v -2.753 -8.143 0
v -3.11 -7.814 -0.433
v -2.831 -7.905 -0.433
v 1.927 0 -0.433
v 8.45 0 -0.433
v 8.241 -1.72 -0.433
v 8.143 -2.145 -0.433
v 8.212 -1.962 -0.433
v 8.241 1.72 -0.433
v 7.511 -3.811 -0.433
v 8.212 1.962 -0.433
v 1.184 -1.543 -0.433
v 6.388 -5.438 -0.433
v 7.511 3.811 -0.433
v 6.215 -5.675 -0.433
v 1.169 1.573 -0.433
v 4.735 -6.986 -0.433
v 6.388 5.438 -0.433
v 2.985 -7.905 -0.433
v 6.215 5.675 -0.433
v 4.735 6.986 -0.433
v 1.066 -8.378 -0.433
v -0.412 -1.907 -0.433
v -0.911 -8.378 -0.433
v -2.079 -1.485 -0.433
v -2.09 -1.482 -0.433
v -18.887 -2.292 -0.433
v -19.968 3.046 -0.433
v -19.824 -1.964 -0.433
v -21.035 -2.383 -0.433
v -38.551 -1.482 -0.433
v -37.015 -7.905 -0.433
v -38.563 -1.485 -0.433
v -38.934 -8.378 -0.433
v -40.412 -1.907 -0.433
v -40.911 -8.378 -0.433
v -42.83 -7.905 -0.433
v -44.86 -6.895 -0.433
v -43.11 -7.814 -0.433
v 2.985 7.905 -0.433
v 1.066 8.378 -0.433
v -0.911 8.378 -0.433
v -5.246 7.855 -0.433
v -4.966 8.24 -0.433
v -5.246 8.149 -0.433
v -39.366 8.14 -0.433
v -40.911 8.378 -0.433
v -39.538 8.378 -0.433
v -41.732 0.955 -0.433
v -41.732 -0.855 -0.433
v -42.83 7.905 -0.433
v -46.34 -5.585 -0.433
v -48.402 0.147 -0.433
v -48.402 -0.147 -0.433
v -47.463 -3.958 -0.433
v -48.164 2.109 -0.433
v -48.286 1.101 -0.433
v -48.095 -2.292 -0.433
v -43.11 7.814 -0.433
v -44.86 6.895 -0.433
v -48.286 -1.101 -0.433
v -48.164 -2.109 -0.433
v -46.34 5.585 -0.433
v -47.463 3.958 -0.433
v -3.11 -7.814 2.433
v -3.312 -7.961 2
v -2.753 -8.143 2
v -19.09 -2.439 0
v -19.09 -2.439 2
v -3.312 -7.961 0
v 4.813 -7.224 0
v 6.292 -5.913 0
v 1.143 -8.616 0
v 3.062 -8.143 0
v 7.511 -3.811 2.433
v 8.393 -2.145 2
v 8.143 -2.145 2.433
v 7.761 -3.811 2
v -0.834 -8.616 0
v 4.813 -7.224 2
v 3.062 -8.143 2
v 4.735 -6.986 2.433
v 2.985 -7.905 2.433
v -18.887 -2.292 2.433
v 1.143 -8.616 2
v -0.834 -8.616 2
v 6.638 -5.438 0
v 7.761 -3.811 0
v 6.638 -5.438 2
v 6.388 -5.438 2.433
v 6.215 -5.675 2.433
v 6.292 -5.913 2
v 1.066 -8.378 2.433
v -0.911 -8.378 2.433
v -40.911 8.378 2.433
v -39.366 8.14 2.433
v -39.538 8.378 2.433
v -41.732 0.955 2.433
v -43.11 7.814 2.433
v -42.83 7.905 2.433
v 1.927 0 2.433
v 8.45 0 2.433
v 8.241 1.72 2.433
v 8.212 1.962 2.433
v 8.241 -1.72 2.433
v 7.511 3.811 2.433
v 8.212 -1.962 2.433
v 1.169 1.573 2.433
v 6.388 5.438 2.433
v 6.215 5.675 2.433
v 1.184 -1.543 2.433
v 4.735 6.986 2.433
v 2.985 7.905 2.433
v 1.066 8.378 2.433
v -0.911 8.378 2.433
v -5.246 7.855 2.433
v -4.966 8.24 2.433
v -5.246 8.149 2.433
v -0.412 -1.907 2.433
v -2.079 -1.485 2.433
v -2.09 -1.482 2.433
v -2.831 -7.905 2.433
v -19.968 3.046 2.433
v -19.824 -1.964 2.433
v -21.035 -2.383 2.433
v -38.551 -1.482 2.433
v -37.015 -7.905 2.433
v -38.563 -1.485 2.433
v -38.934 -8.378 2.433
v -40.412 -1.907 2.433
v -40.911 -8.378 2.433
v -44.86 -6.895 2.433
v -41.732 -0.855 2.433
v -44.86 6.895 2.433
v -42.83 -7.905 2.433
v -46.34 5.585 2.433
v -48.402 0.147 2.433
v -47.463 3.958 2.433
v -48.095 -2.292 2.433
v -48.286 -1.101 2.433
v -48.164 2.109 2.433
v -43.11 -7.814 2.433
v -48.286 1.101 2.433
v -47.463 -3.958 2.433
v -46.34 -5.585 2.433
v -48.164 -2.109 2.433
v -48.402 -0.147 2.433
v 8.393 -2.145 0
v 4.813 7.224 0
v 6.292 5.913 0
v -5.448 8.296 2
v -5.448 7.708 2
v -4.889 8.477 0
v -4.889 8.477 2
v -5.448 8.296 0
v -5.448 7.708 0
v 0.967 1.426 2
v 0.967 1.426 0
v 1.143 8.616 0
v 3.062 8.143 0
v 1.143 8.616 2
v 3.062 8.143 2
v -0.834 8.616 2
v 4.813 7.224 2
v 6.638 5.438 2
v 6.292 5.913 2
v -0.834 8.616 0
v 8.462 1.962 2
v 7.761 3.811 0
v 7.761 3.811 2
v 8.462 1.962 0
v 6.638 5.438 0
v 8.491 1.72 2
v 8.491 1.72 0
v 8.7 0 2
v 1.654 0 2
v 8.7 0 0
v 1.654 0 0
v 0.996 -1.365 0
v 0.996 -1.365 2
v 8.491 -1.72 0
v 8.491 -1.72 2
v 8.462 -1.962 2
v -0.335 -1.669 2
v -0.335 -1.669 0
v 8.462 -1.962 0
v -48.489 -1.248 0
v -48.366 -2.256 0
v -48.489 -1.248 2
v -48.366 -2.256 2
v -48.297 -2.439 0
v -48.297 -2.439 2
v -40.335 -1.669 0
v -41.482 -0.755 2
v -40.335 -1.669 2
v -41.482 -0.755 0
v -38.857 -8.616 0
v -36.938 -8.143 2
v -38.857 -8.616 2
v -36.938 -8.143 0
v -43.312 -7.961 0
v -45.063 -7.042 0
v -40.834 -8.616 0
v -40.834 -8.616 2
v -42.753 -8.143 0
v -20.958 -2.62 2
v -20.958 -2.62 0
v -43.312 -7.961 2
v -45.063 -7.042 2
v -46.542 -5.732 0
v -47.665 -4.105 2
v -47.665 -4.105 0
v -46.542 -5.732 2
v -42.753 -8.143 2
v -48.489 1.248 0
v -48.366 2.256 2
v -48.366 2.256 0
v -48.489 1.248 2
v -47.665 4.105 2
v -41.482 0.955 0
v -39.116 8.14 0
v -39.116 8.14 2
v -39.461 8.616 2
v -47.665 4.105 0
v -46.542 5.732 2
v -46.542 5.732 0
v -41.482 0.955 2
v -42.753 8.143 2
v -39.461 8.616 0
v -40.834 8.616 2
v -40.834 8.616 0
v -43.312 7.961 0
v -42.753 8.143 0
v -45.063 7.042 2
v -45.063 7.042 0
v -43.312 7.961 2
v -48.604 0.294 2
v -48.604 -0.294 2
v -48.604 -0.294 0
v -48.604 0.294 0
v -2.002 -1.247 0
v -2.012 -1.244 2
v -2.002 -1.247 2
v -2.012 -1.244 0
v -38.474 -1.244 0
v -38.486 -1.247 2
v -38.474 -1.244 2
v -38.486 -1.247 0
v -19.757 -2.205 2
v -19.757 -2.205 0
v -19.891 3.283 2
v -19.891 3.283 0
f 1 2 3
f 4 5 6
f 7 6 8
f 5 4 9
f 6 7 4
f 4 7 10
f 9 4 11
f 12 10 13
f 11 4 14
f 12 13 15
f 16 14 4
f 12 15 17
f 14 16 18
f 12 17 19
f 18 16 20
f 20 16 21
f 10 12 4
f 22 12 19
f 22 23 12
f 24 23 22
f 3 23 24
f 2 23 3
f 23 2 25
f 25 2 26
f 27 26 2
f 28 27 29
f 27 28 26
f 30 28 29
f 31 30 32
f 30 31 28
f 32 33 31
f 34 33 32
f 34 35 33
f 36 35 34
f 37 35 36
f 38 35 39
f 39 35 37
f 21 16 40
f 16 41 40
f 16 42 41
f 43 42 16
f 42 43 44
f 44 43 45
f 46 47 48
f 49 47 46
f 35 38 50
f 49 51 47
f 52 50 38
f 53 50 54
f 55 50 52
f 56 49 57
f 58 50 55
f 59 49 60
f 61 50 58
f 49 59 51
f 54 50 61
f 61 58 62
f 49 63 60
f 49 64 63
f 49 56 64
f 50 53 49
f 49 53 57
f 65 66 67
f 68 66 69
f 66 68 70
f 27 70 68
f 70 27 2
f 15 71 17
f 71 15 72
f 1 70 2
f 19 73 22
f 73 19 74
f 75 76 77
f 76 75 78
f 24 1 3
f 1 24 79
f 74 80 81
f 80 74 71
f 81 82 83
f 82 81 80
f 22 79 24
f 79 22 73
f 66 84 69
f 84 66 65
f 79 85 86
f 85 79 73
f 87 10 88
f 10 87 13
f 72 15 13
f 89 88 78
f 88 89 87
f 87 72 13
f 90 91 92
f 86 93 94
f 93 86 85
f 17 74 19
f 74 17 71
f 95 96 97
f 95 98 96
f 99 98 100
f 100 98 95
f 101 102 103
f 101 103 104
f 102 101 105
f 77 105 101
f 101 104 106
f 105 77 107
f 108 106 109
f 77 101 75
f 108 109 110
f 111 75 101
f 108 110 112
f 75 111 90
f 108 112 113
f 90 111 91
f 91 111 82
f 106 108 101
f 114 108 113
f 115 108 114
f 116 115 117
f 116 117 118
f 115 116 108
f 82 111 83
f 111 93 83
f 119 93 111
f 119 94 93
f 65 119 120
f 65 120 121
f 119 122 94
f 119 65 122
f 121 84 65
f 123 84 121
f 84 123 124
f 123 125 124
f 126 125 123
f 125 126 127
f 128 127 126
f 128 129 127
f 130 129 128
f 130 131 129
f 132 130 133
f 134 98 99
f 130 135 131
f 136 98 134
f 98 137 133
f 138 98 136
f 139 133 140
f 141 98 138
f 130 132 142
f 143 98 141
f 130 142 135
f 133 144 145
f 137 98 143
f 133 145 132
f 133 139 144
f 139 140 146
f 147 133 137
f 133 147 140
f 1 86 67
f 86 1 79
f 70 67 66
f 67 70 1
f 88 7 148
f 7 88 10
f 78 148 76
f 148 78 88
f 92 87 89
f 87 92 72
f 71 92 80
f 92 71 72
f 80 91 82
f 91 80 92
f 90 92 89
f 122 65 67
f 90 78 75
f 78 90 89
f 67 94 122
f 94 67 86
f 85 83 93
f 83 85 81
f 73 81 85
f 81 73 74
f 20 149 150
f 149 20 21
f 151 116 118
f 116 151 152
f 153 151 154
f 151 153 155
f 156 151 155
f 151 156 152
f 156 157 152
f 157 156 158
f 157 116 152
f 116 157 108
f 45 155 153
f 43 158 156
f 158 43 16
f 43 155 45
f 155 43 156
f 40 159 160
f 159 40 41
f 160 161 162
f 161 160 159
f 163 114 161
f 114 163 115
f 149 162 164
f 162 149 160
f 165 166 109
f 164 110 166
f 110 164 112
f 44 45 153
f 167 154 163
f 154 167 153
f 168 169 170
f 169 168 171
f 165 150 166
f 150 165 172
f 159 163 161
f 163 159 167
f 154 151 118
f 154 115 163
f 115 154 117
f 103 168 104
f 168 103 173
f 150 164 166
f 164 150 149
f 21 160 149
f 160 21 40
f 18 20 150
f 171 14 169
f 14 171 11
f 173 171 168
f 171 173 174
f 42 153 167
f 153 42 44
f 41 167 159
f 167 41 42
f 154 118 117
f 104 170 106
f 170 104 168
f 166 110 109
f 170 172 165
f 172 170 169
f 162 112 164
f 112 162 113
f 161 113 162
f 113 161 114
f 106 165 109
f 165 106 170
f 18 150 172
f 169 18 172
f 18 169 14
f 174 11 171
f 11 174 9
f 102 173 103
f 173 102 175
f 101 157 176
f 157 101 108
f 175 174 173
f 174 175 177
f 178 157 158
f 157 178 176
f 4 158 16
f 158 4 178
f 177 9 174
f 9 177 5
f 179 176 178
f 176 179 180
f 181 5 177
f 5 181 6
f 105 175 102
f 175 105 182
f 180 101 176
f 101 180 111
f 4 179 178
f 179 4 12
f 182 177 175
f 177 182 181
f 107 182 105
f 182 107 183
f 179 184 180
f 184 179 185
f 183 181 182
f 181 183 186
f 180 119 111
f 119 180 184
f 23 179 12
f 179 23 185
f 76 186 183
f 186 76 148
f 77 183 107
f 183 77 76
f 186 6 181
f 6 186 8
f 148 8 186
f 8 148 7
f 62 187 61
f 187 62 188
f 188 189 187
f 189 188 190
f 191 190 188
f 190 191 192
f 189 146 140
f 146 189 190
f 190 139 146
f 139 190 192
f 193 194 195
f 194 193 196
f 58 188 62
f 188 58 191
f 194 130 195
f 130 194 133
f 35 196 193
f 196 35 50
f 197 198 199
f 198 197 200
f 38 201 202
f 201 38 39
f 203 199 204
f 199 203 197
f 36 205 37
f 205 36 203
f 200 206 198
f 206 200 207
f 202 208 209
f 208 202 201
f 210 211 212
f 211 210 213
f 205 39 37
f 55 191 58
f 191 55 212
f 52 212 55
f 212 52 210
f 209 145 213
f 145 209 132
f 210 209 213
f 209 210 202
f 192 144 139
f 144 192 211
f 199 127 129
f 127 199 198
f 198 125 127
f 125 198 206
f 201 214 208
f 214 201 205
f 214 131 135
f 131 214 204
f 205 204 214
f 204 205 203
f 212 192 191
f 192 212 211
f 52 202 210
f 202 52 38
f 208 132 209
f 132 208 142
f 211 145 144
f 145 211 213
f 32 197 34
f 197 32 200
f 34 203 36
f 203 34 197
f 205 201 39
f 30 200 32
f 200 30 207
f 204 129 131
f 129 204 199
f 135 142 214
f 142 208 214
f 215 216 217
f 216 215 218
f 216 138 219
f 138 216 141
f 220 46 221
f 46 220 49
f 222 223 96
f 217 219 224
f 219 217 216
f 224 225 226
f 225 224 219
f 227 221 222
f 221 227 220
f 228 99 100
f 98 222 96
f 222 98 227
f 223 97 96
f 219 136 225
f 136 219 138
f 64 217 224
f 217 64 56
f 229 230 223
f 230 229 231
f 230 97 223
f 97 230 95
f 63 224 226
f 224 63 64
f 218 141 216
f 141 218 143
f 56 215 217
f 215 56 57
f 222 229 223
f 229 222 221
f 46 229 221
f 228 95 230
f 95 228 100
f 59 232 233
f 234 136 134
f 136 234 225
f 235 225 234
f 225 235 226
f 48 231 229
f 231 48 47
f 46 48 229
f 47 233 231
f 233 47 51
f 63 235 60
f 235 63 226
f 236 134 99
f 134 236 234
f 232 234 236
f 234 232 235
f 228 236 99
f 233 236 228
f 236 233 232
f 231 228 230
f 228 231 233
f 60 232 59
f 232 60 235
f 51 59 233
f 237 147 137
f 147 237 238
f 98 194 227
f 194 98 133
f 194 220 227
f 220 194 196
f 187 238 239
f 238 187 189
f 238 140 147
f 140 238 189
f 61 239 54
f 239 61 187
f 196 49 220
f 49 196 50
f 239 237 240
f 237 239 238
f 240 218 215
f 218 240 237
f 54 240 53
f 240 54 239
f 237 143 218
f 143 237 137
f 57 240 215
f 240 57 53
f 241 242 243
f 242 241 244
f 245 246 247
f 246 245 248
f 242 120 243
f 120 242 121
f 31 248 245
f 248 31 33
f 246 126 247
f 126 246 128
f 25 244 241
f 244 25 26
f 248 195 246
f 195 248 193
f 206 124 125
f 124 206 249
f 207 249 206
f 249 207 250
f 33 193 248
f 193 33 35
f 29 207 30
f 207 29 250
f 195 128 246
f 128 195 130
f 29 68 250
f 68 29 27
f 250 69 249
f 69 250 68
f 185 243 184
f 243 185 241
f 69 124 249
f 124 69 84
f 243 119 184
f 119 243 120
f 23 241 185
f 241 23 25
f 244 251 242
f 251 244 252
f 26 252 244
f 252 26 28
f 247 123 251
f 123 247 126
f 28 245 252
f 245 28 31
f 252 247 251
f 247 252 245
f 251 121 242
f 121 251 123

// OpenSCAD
hole_center = 40;
hole_dia = 4;
height = 2;
stiffness = 6;
buffer = 0.2;

hole_rad = (hole_dia / 2) + buffer;
body_rad = hole_rad + stiffness;

screw_hole_fn = $preview ? 8 : 64;

if ($preview) {
    clip();
}
else {
    minkowski() {
        clip();
        sphere(height / 4);
    }
}

mid_offset_x = (hole_center / 2);  // halfway between the hole
mid_offset_y = stiffness * 0.5; // 50% offset towards y
mid_rad = stiffness * 3 / 4; // 75% of the thickness around the hooks

module clip_body() {
    mid_offset_x = hole_center / 2;  // halfway between the hole
    mid_offset_y = stiffness * 0.50; // 50% offset towards y
    mid_rad = stiffness * 3 / 4; // 75% thicker than around the hooks

    hull() {
        cylinder(r = body_rad, h = height);
        translate([-mid_offset_x, mid_offset_y, 0]) cylinder(r = mid_rad, h = height);
    }
    hull() {
        translate([-mid_offset_x, mid_offset_y, 0]) cylinder(r = mid_rad, h = height);
        translate([-hole_center, 0, 0]) cylinder(r = body_rad, h = height);
    }
}

module clip() {
    difference() {
        clip_body();
        translate([0, 0, -buffer / 2]) {
            // cut out the holes and hooks
            hull() {
                cylinder(r = hole_rad, h = height + buffer);
                translate([-mid_offset_x, mid_offset_y + body_rad, 0]) cylinder(r = body_rad, h = height + buffer);
            }
            hull() {
                translate([-hole_center, 0, 0]) cylinder(r = hole_rad, h = height + buffer);
                translate([-mid_offset_x, mid_offset_y + body_rad, 0]) cylinder(r = body_rad, h = height + buffer);
                translate([-mid_offset_x * 1.5, mid_offset_y + body_rad, 0]) cylinder(r = body_rad, h = height + buffer);
            }
        }
    }
}
